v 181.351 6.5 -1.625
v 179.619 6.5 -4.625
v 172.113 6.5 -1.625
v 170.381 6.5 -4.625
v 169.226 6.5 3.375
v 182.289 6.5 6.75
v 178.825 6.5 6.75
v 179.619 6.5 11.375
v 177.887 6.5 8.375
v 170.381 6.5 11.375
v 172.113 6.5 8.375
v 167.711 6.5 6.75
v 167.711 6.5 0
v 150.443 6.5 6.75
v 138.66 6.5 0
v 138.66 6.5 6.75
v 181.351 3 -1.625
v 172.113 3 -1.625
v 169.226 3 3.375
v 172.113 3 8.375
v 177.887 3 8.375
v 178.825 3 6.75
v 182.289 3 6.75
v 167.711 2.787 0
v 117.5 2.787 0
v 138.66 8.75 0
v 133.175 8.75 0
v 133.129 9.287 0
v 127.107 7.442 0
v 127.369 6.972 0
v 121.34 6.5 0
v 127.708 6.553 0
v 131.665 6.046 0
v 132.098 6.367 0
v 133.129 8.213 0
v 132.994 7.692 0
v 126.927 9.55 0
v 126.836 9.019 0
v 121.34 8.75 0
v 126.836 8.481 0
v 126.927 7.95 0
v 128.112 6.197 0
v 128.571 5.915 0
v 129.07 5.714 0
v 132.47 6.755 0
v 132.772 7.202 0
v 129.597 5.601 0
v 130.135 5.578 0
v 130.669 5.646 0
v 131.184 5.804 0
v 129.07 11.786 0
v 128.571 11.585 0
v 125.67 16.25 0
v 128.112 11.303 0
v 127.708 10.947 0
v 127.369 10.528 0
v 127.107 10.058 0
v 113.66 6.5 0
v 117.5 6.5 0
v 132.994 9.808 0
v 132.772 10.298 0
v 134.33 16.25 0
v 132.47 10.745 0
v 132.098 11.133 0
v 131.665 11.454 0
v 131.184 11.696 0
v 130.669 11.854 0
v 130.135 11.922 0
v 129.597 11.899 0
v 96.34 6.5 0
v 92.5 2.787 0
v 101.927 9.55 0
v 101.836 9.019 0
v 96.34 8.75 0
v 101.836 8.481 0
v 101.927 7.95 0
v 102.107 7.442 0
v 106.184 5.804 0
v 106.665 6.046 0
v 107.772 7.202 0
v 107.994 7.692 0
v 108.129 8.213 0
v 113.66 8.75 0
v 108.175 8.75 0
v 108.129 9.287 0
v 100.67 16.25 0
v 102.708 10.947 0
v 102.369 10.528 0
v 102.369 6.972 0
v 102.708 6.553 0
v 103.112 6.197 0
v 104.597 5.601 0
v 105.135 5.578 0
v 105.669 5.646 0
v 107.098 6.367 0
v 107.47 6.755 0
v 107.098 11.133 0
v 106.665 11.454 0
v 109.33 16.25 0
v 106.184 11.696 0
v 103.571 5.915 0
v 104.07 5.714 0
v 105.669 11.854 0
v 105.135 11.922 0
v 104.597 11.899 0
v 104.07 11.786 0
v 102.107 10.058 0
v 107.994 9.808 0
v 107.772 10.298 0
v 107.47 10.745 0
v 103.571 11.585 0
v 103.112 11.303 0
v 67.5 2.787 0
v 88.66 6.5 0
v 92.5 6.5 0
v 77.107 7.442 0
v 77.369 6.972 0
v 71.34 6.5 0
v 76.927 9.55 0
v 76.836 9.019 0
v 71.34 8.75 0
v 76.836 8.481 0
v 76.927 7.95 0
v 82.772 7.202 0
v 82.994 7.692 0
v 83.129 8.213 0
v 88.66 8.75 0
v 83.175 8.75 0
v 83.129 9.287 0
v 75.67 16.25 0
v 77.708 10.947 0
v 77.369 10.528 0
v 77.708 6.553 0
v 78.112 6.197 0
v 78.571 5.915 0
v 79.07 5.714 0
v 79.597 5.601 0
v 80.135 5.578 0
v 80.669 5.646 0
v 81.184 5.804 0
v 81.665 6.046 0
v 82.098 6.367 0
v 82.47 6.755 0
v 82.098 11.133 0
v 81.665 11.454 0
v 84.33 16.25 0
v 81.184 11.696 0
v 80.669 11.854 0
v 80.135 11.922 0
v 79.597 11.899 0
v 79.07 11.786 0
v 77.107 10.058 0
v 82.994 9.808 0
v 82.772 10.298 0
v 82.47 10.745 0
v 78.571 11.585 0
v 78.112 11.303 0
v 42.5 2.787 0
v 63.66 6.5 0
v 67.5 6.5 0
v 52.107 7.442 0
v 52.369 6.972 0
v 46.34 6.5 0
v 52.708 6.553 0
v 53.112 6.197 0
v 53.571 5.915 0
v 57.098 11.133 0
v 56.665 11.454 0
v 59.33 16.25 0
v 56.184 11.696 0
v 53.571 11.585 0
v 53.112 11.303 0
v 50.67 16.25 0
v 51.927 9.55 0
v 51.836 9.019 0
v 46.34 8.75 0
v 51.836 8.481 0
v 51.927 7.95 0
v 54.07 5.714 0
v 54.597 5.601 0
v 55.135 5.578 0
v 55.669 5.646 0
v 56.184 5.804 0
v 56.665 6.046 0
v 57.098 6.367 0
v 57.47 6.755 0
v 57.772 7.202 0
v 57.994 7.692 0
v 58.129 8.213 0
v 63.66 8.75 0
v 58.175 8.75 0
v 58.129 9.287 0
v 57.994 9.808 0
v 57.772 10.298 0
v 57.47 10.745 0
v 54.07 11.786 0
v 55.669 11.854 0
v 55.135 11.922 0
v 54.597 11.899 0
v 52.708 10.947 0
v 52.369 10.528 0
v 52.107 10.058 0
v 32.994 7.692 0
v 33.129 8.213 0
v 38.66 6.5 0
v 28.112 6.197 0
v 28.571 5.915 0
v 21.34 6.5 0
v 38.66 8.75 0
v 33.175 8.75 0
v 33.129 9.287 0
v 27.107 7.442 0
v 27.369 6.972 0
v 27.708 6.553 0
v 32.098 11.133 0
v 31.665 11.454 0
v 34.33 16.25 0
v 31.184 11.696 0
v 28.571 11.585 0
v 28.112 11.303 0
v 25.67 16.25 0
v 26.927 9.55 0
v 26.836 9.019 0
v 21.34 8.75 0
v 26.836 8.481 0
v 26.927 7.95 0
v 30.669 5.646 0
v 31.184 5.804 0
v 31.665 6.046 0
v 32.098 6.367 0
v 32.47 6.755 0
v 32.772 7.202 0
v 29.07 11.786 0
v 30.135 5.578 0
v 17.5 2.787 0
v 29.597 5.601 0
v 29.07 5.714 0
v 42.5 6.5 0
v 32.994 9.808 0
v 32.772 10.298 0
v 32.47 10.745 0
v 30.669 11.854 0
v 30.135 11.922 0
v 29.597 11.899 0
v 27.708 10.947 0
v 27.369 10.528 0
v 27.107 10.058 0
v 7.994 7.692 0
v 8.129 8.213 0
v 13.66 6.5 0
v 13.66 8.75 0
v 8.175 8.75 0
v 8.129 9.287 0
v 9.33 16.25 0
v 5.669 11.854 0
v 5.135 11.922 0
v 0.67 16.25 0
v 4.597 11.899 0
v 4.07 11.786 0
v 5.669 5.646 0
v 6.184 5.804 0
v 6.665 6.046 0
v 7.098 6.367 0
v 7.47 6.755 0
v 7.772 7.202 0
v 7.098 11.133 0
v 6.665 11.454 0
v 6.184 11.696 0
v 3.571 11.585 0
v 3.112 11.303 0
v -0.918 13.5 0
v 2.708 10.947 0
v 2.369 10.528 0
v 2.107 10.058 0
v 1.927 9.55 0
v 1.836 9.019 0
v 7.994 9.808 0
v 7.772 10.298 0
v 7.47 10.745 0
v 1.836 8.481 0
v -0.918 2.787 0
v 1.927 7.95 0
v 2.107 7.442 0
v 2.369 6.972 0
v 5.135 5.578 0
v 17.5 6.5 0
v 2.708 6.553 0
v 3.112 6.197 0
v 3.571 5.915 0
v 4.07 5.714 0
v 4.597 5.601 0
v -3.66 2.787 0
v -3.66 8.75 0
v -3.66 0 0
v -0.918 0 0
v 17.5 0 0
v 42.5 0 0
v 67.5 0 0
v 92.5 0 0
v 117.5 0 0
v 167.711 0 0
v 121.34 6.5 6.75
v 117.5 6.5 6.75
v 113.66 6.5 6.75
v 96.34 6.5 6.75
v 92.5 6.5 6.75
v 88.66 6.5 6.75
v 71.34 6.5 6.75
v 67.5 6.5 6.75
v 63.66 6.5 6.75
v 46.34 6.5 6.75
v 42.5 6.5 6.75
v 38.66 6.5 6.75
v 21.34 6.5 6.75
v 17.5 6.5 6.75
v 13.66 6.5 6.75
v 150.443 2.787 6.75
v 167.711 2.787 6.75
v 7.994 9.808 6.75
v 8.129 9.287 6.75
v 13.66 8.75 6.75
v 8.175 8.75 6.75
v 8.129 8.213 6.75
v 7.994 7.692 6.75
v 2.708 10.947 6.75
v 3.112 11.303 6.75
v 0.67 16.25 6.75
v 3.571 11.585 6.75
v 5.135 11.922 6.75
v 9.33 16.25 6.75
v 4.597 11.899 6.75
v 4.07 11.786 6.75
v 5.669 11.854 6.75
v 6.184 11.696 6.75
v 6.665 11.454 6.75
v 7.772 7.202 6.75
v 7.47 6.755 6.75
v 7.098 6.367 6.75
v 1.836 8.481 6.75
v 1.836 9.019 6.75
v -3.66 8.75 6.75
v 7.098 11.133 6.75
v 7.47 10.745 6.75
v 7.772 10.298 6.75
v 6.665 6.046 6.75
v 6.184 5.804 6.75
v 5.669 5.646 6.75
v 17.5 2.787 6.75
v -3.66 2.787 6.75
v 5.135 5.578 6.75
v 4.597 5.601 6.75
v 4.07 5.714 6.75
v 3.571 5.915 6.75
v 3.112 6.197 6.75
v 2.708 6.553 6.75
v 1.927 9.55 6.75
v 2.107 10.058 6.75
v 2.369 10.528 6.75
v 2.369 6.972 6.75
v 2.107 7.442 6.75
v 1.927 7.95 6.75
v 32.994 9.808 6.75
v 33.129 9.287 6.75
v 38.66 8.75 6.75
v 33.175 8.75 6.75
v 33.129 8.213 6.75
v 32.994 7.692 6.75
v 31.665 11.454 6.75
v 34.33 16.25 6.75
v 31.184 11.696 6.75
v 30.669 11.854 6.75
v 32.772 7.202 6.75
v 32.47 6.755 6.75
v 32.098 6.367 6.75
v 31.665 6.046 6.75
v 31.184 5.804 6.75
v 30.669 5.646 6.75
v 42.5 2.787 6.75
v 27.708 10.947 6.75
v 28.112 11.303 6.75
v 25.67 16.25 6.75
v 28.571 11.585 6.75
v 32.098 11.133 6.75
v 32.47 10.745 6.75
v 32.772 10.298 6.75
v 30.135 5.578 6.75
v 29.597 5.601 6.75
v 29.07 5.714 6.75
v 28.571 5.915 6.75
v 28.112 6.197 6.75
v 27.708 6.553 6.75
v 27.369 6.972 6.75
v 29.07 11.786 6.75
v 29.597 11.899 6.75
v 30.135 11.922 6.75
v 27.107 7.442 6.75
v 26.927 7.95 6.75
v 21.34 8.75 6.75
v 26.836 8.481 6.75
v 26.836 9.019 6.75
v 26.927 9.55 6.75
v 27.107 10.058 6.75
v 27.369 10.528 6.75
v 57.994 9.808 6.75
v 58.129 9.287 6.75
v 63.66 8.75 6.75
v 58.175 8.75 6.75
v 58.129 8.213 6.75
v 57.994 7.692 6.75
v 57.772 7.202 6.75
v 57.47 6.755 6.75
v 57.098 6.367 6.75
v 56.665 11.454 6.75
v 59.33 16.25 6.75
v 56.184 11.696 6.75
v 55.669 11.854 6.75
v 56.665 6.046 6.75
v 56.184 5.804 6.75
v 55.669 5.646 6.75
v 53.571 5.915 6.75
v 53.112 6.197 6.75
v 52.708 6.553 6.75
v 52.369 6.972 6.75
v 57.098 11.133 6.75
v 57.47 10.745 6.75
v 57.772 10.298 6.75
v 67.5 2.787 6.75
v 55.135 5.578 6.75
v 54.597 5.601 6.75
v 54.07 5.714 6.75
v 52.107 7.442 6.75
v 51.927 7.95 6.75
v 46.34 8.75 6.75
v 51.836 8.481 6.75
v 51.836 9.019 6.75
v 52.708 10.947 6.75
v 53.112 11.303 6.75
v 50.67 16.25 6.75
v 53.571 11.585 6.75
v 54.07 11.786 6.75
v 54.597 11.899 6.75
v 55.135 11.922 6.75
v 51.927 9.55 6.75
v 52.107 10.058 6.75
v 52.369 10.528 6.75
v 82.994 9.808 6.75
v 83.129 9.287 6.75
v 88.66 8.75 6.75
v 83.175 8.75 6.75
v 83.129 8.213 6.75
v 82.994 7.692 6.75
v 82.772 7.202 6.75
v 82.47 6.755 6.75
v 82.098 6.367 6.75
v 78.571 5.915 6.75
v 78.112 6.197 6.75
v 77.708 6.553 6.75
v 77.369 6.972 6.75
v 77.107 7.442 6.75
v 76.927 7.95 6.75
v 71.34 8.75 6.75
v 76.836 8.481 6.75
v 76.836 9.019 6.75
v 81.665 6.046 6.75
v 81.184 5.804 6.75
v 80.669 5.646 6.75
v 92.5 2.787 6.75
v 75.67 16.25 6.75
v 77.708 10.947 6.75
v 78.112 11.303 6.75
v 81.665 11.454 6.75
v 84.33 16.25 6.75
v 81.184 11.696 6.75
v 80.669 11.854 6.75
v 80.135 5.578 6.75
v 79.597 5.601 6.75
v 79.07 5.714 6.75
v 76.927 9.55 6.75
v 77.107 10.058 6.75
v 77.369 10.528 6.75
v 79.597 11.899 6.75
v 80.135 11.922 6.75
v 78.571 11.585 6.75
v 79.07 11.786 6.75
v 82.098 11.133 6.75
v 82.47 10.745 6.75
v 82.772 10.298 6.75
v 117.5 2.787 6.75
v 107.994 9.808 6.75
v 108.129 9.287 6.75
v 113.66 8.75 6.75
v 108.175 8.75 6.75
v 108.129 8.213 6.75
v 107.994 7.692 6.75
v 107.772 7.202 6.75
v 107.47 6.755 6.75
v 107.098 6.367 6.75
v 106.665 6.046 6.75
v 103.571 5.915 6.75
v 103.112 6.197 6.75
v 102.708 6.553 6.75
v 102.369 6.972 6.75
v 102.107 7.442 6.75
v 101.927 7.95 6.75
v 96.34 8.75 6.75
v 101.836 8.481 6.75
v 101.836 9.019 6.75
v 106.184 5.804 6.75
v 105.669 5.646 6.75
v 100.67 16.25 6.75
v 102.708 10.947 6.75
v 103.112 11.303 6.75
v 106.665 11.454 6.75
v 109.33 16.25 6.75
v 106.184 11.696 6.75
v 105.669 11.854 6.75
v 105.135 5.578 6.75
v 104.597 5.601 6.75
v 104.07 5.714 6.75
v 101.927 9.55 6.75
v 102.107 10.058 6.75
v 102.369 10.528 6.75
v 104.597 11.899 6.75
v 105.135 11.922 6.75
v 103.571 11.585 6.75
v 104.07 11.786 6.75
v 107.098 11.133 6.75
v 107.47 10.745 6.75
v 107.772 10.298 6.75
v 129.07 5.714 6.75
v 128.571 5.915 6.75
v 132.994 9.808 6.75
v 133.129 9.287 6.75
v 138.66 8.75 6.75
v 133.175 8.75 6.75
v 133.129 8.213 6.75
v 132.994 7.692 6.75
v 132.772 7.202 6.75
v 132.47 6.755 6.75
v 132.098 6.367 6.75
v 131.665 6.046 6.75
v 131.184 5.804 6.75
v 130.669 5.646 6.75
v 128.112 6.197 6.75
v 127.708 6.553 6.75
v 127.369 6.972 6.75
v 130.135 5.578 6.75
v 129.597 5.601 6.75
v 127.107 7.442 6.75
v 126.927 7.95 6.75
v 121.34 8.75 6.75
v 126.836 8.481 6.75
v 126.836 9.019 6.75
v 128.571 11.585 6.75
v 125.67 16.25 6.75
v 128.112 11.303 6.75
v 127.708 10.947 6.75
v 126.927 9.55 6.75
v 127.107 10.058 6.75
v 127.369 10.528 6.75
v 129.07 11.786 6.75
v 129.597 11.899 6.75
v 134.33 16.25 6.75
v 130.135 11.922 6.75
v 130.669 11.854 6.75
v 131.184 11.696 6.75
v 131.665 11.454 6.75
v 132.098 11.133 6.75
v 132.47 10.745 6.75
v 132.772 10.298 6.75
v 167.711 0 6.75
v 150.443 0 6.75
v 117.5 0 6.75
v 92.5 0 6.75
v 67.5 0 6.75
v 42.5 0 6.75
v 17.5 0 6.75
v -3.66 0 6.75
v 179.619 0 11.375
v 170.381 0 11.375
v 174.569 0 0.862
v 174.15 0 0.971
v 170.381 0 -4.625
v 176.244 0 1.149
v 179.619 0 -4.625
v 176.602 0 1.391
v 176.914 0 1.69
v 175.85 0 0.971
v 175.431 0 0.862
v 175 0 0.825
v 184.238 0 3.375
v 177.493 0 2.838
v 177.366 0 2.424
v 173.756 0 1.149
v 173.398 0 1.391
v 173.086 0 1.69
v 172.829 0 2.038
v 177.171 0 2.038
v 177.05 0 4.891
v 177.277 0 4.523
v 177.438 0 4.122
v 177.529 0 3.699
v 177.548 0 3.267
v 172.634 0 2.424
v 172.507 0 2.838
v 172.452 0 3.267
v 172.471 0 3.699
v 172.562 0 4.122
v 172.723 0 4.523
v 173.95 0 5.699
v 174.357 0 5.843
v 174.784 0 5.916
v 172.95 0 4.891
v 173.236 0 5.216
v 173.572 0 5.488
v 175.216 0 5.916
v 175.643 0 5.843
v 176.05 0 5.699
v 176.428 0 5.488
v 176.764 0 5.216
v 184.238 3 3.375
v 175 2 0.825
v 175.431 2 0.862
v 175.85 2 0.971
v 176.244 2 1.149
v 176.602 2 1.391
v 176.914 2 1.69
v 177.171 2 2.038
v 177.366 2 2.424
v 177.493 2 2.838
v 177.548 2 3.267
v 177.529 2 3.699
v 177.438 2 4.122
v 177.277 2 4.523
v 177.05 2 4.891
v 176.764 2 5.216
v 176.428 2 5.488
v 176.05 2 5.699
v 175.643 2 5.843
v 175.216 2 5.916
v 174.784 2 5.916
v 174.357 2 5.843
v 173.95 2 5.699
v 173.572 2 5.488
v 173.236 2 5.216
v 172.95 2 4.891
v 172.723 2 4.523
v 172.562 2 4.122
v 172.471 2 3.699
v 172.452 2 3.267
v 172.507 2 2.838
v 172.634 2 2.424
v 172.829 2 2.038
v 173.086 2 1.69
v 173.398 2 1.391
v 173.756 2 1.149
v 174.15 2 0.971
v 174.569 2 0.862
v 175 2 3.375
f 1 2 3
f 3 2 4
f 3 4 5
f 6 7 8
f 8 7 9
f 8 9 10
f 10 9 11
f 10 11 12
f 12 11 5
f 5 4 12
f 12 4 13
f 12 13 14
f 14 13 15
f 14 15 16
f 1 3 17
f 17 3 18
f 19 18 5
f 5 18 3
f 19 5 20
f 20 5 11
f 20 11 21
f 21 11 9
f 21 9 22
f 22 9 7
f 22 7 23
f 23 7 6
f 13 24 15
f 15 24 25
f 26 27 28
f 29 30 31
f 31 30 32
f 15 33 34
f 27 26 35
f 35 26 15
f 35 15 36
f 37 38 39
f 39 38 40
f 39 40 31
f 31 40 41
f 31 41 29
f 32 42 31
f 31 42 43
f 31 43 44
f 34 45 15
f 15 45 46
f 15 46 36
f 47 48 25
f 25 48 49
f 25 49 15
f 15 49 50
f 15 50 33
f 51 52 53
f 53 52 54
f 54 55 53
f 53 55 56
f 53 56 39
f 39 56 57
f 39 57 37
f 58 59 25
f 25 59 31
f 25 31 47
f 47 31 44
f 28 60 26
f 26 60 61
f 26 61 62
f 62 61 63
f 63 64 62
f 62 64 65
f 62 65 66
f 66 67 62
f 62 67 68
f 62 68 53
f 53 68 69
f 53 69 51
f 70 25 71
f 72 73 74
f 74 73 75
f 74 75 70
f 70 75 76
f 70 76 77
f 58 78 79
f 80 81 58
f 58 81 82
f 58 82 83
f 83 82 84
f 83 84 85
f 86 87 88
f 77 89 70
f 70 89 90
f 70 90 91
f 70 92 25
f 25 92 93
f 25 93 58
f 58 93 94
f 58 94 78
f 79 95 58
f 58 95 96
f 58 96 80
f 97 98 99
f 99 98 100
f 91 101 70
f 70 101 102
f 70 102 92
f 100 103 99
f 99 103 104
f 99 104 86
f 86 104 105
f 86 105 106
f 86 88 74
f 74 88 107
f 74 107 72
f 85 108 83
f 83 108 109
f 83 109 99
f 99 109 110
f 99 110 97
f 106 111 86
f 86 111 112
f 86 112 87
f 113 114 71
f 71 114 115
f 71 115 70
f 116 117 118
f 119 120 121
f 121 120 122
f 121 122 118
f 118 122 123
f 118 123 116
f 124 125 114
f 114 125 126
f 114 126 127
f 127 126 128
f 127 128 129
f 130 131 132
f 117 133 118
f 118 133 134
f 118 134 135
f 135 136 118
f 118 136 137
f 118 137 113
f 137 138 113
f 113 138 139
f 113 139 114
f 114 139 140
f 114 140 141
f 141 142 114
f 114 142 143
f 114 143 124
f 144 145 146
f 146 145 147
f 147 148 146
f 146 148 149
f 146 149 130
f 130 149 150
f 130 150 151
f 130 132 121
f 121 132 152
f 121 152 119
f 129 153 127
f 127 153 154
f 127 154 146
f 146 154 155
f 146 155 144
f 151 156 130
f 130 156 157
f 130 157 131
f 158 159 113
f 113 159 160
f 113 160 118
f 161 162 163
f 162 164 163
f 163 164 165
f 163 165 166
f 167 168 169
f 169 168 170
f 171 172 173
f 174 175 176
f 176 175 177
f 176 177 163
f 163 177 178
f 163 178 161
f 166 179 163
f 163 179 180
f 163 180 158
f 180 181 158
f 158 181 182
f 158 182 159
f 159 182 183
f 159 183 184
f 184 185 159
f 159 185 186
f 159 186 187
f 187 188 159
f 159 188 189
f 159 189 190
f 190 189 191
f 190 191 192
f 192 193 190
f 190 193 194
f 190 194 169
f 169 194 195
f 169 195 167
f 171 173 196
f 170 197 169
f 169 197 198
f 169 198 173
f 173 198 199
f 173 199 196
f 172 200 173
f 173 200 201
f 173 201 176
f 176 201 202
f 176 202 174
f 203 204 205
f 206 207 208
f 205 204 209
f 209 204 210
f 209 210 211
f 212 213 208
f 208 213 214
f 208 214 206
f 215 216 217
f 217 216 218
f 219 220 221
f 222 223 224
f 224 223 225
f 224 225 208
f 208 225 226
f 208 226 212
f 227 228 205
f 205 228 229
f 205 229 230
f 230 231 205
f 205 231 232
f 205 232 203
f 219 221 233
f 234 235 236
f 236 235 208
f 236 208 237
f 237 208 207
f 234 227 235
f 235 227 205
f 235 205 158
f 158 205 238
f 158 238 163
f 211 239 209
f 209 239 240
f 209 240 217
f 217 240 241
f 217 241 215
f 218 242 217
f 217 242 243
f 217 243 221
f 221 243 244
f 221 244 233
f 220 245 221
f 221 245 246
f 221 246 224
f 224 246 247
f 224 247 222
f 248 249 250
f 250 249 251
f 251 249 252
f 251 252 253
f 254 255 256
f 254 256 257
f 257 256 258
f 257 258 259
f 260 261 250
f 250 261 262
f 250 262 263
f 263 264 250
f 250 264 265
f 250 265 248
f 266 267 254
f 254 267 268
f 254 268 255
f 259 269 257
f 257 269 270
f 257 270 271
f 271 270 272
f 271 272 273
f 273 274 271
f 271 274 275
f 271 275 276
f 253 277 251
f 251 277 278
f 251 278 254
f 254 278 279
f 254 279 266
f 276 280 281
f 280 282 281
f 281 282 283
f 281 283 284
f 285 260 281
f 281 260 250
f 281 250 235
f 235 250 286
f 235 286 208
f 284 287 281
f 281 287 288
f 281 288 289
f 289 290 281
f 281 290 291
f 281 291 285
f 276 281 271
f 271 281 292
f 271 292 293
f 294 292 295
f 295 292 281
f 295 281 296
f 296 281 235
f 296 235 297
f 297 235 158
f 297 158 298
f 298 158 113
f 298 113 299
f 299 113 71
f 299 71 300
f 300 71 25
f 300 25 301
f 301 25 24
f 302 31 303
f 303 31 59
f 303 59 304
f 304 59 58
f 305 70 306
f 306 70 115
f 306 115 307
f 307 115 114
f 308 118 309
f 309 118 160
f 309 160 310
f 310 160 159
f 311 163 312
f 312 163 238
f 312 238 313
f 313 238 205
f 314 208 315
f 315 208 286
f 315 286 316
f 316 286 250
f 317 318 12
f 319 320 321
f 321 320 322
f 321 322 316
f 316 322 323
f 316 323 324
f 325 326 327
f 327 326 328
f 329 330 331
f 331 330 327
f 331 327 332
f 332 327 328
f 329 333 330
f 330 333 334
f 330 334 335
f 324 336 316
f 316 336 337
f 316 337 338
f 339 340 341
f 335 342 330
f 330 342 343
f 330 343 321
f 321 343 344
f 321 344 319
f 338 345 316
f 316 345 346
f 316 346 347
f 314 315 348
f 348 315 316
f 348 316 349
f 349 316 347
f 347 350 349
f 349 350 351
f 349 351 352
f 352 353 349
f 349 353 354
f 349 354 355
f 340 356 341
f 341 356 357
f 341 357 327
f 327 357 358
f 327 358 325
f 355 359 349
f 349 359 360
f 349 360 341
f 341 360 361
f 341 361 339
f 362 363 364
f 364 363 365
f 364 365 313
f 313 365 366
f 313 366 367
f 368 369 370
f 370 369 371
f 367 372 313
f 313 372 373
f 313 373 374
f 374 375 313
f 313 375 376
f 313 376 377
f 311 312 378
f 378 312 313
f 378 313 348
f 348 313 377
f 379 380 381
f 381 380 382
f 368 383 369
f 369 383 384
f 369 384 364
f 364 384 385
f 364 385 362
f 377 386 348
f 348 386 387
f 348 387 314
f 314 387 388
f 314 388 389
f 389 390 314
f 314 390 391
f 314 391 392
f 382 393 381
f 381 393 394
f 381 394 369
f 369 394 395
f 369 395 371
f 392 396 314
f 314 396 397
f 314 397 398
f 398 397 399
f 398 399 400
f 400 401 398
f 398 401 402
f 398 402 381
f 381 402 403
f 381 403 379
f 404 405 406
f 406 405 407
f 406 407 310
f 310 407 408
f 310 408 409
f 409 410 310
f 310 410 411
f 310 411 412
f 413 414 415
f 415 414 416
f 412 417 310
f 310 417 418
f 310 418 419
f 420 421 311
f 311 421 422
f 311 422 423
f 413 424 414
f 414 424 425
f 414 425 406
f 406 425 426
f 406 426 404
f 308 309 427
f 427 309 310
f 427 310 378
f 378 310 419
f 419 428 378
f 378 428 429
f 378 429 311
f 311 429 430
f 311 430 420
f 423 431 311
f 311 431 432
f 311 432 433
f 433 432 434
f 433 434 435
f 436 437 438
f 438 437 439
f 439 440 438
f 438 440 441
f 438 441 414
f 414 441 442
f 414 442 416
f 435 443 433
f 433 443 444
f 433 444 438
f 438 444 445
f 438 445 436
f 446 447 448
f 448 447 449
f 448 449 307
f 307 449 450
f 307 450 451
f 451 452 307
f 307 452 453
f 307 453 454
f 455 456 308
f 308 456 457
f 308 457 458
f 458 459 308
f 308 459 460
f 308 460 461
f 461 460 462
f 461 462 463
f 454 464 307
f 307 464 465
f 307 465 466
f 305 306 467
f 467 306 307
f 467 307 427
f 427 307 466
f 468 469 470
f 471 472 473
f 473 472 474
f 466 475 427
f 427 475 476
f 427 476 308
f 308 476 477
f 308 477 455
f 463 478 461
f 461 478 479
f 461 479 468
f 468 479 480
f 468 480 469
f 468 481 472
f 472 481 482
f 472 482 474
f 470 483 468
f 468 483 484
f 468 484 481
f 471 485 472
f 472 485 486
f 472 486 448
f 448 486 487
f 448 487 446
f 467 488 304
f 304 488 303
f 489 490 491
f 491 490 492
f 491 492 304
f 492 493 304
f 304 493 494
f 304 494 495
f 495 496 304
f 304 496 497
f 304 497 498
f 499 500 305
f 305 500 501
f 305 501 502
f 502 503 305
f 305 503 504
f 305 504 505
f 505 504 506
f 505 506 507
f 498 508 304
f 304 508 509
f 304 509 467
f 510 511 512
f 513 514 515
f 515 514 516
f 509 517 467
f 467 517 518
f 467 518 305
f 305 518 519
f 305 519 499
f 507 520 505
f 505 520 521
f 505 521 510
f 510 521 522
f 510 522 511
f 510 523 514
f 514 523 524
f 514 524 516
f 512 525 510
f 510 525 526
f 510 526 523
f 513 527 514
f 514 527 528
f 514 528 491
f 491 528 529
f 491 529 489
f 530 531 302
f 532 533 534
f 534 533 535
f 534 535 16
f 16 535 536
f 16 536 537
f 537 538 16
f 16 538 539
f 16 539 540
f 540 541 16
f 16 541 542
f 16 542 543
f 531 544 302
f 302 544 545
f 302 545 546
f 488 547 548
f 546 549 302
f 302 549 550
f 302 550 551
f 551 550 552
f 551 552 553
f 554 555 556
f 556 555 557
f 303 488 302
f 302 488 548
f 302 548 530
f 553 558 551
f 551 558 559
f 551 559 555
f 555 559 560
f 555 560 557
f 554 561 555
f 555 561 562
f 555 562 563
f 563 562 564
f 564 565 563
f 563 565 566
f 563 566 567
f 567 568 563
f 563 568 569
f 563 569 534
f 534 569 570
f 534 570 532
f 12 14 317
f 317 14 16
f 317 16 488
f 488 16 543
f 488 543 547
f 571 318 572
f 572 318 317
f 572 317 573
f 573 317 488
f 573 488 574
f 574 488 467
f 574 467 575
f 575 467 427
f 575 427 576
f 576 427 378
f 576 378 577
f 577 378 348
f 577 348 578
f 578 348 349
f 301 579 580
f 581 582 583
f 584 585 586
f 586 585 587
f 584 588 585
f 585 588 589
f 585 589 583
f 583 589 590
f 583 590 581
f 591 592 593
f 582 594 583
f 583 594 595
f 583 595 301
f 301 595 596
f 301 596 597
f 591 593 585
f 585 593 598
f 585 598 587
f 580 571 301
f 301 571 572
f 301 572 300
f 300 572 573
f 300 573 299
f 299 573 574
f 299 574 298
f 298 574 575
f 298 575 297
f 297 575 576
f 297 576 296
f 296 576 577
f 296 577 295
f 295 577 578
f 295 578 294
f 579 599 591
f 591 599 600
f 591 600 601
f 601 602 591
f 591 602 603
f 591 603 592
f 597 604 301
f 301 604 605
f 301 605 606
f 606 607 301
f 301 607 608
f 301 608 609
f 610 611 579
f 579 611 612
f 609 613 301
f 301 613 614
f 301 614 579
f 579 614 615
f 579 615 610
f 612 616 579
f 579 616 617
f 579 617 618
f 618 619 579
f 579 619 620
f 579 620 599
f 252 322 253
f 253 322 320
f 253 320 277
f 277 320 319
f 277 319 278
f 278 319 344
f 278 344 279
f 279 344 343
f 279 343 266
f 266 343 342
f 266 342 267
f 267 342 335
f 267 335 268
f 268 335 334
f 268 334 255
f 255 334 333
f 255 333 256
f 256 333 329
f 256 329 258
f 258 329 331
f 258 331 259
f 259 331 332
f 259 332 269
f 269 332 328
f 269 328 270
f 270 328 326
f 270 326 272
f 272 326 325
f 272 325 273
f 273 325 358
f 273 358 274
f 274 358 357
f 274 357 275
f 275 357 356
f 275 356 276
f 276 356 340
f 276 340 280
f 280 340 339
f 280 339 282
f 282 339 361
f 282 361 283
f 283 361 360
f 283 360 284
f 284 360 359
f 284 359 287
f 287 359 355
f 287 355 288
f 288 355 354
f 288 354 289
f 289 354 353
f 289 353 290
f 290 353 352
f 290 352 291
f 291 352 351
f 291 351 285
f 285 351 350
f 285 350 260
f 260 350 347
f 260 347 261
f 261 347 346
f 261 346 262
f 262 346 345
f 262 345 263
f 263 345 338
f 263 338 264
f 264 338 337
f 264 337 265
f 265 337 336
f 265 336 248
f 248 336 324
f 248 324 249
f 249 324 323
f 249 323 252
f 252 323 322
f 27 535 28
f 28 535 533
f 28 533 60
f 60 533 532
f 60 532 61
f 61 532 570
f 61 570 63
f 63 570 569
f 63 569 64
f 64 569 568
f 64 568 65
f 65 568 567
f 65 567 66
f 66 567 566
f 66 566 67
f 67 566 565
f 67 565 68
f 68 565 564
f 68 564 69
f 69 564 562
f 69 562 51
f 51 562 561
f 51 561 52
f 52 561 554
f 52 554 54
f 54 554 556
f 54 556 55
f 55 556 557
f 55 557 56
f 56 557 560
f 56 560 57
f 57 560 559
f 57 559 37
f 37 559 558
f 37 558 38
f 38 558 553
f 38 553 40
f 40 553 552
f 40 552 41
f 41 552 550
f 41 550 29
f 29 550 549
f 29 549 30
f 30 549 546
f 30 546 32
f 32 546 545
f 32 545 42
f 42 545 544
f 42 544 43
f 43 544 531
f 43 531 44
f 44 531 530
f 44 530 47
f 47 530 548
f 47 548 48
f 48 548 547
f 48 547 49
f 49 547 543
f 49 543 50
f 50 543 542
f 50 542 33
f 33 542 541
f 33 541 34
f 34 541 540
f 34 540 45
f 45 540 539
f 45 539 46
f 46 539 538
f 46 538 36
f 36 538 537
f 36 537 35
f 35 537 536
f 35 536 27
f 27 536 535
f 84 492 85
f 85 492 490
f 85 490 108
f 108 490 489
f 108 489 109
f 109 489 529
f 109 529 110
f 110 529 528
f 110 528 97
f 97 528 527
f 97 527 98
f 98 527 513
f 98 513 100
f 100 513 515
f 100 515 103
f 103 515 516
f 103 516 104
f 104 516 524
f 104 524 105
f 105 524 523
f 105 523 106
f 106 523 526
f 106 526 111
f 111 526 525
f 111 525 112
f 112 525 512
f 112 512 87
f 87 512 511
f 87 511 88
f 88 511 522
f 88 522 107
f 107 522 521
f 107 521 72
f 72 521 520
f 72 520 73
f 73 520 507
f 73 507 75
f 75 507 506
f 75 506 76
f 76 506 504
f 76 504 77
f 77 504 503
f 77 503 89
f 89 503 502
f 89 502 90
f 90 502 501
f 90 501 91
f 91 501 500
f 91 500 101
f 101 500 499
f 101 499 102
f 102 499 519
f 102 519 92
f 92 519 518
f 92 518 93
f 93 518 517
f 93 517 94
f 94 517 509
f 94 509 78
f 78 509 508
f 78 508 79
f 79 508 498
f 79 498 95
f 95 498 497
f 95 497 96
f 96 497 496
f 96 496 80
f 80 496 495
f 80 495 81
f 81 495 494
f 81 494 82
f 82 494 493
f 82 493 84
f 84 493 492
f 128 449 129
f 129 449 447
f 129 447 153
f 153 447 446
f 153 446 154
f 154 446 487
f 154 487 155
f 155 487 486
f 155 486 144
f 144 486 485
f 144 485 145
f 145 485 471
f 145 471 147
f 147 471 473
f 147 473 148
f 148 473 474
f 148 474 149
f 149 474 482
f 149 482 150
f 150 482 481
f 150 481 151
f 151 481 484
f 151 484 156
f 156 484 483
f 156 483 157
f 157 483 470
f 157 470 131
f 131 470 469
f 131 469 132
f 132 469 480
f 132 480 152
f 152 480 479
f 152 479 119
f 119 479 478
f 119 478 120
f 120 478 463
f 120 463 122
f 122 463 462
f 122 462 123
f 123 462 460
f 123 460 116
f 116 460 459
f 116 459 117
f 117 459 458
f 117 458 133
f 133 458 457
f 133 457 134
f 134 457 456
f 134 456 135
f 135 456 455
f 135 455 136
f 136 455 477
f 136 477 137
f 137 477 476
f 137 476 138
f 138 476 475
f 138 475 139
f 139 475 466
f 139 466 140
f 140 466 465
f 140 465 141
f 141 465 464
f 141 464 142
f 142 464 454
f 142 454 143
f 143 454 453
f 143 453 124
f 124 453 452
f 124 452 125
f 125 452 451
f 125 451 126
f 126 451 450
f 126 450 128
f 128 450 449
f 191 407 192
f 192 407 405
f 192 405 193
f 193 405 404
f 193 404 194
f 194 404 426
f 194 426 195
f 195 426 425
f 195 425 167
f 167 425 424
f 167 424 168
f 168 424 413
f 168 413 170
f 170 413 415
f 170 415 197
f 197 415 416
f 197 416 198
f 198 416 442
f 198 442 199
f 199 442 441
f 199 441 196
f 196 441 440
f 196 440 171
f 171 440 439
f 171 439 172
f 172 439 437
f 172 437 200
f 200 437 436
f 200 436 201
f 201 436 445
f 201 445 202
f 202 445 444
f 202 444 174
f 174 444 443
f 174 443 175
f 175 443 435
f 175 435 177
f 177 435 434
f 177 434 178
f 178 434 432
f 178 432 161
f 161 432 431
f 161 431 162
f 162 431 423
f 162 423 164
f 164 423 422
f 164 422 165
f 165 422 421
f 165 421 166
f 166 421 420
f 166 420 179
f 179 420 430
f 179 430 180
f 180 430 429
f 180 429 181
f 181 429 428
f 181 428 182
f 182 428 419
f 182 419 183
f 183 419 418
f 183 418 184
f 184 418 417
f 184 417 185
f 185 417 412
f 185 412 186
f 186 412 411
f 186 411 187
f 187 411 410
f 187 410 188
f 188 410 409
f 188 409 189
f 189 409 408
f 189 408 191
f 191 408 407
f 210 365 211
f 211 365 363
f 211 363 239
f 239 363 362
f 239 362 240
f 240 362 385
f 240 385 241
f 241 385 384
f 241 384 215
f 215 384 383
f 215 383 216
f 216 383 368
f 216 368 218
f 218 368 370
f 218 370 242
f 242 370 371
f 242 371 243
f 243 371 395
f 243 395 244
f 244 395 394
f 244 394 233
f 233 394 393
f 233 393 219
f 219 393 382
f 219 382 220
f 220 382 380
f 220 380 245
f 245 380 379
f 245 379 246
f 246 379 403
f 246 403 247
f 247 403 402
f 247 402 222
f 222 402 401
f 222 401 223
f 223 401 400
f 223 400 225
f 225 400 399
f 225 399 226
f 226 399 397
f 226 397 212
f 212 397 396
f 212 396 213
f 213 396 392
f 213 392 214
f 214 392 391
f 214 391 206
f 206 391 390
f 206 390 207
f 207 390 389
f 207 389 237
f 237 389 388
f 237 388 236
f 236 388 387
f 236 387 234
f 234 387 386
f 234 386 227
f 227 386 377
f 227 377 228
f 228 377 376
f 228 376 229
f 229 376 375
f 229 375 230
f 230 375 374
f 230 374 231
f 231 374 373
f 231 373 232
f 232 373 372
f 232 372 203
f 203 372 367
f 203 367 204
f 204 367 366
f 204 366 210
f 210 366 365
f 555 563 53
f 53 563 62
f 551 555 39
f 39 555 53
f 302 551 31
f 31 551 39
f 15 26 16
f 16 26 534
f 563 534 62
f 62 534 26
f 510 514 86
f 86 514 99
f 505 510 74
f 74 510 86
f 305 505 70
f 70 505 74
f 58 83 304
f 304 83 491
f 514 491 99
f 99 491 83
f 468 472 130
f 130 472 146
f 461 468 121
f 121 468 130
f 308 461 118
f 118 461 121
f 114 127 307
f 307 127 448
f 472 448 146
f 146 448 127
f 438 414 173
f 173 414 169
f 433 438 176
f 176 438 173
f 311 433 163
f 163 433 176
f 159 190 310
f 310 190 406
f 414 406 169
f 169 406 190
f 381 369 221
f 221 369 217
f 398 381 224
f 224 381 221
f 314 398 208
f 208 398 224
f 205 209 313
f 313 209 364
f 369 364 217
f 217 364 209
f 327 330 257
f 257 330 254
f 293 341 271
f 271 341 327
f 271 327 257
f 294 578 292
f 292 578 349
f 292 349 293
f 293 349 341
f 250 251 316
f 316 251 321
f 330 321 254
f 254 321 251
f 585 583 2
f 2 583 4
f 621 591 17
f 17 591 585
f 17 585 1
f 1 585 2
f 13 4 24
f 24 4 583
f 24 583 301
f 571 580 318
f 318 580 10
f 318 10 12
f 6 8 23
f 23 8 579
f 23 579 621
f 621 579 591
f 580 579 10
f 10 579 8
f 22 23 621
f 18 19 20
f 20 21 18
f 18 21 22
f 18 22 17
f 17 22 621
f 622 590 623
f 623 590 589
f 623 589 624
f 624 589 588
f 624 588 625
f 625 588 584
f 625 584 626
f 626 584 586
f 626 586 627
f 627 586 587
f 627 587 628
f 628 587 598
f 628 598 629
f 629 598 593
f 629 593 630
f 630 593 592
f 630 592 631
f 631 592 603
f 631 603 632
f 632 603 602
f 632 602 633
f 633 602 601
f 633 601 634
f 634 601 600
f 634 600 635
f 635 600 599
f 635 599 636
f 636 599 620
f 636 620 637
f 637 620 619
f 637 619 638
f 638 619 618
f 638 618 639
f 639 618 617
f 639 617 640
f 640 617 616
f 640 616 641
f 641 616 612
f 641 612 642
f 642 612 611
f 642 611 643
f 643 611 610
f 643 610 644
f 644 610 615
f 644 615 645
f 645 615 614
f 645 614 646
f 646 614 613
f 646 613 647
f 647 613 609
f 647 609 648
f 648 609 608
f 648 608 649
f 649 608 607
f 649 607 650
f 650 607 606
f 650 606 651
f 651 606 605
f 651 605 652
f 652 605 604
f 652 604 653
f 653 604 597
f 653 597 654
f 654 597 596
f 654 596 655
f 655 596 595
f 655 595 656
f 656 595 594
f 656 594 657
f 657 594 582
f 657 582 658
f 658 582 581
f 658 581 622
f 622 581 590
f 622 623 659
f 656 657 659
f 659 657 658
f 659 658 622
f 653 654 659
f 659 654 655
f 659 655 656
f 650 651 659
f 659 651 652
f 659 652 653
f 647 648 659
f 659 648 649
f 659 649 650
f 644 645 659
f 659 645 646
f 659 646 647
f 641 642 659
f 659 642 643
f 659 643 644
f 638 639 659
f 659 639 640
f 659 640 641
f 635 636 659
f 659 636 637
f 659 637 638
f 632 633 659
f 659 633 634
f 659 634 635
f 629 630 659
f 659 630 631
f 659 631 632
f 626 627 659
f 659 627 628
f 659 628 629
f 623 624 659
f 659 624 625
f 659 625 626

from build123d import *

# Parameters (mm, degrees)
SKETCH1_W           = 175
SKETCH1_H           = 6.75
BOSS_EXTRUDE1_DEPTH = 6.5
SKETCH2_W           = 10
SKETCH2_H           = 6.75
BOSS_EXTRUDE2_DEPTH = 7.5
SKETCH5_R           = 3.175
CUT_EXTRUDE2_DEPTH  = 10
LPATTERN1_COUNT     = 6
LPATTERN1_PITCH     = 25
SKETCH6_R           = 3.175
BOSS_EXTRUDE4_DEPTH = 6.75
LPATTERN2_COUNT     = 6
LPATTERN2_PITCH     = 25
BOSS_EXTRUDE5_DEPTH = 6.5
BOSS_EXTRUDE6_DEPTH = 3
SKETCH10_R          = 2.55
CUT_EXTRUDE4_DEPTH  = 2
CUT_EXTRUDE5_DEPTH  = 18


with BuildPart() as part:
    # Sketch1 → Boss-Extrude1 (new body)
    with BuildSketch(Plane(origin=(0, 0, 0), x_dir=(1, 0, 0), z_dir=(0, 1, 0))):
        with Locations((87.5, -3.375)):
            Rectangle(SKETCH1_W, SKETCH1_H)
    extrude(amount=BOSS_EXTRUDE1_DEPTH)

    # Sketch2 → Boss-Extrude2 (add)
    with BuildSketch(Plane(origin=(0, 6.5, 0), x_dir=(1, 0, 0), z_dir=(0, 1, 0))):
        with Locations((5, -3.375)):
            Rectangle(SKETCH2_W, SKETCH2_H)
    boss_extrude2 = extrude(amount=BOSS_EXTRUDE2_DEPTH)

    # Sketch5 → Cut-Extrude2 (cut)
    with BuildSketch(Plane.XY.offset(6.75)):
        with Locations((5, 8.75)):
            Circle(SKETCH5_R)
    cut_extrude2 = extrude(amount=-CUT_EXTRUDE2_DEPTH, mode=Mode.SUBTRACT)

    # LPattern1: Boss-Extrude2, Cut-Extrude2 ×6
    with Locations(*[(i * LPATTERN1_PITCH, 0, 0) for i in range(1, LPATTERN1_COUNT)]):
        add(boss_extrude2)
        add(cut_extrude2, mode=Mode.SUBTRACT)

    # Sketch6 → Boss-Extrude4 (add)
    with BuildSketch(Plane.XY.offset(6.75)):
        Polygon((138.660254038, 8.75), (138.660254038, 0), (121.339745962, 0), (121.339745962, 8.75), (125.669872981, 16.25), (134.330127019, 16.25), align=None)
        with Locations((130, 8.75)):
            Circle(SKETCH6_R, mode=Mode.SUBTRACT)
    boss_extrude4 = extrude(amount=-BOSS_EXTRUDE4_DEPTH)

    # LPattern2: Boss-Extrude4 ×6
    with Locations(*[(-i * LPATTERN2_PITCH, 0, 0) for i in range(1, LPATTERN2_COUNT)]):
        add(boss_extrude4)

    # Sketch7 → Boss-Extrude5 (add)
    with BuildSketch(Plane(origin=(0, 6.5, 0), x_dir=(1, 0, 0), z_dir=(0, 1, 0))):
        Polygon((172.113248654, -8.375), (177.886751346, -8.375), (178.824945533, -6.75), (182.289047149, -6.75), (179.618802154, -11.375), (170.381197846, -11.375), (165.762395693, -3.375), (170.381197846, 4.625), (179.618802154, 4.625), (181.350852961, 1.625), (177.886751346, 1.625), (172.113248654, 1.625), (169.226497308, -3.375), align=None)
    extrude(amount=-BOSS_EXTRUDE5_DEPTH)

    # Sketch9 → Boss-Extrude6 (add)
    with BuildSketch(Plane(origin=(0, 0, 0), x_dir=(-1, 0, 0), z_dir=(0, -1, 0))):
        Polygon((-169.226497308, -3.375), (-172.113248654, 1.625), (-177.886751346, 1.625), (-181.350852961, 1.625), (-184.237604307, -3.375), (-182.289047149, -6.75), (-178.824945533, -6.75), (-177.886751346, -8.375), (-172.113248654, -8.375), align=None)
    extrude(amount=-BOSS_EXTRUDE6_DEPTH)

    # Sketch10 → Cut-Extrude4 (cut)
    with BuildSketch(Plane(origin=(0, 0, 0), x_dir=(-1, 0, 0), z_dir=(0, -1, 0))):
        with Locations((-175, -3.375)):
            Circle(SKETCH10_R)
    extrude(amount=-CUT_EXTRUDE4_DEPTH, mode=Mode.SUBTRACT)

    # Sketch11 → Cut-Extrude5 (cut)
    with BuildSketch(Plane(origin=(0, 3, 0), x_dir=(1, 0, 0), z_dir=(0, 1, 0))):
        Polygon((180.773502692, -3.375), (177.886751346, 1.625), (172.113248654, 1.625), (169.226497308, -3.375), (172.113248654, -8.375), (177.886751346, -8.375), align=None)
    extrude(amount=CUT_EXTRUDE5_DEPTH, mode=Mode.SUBTRACT)


solid = part.part
